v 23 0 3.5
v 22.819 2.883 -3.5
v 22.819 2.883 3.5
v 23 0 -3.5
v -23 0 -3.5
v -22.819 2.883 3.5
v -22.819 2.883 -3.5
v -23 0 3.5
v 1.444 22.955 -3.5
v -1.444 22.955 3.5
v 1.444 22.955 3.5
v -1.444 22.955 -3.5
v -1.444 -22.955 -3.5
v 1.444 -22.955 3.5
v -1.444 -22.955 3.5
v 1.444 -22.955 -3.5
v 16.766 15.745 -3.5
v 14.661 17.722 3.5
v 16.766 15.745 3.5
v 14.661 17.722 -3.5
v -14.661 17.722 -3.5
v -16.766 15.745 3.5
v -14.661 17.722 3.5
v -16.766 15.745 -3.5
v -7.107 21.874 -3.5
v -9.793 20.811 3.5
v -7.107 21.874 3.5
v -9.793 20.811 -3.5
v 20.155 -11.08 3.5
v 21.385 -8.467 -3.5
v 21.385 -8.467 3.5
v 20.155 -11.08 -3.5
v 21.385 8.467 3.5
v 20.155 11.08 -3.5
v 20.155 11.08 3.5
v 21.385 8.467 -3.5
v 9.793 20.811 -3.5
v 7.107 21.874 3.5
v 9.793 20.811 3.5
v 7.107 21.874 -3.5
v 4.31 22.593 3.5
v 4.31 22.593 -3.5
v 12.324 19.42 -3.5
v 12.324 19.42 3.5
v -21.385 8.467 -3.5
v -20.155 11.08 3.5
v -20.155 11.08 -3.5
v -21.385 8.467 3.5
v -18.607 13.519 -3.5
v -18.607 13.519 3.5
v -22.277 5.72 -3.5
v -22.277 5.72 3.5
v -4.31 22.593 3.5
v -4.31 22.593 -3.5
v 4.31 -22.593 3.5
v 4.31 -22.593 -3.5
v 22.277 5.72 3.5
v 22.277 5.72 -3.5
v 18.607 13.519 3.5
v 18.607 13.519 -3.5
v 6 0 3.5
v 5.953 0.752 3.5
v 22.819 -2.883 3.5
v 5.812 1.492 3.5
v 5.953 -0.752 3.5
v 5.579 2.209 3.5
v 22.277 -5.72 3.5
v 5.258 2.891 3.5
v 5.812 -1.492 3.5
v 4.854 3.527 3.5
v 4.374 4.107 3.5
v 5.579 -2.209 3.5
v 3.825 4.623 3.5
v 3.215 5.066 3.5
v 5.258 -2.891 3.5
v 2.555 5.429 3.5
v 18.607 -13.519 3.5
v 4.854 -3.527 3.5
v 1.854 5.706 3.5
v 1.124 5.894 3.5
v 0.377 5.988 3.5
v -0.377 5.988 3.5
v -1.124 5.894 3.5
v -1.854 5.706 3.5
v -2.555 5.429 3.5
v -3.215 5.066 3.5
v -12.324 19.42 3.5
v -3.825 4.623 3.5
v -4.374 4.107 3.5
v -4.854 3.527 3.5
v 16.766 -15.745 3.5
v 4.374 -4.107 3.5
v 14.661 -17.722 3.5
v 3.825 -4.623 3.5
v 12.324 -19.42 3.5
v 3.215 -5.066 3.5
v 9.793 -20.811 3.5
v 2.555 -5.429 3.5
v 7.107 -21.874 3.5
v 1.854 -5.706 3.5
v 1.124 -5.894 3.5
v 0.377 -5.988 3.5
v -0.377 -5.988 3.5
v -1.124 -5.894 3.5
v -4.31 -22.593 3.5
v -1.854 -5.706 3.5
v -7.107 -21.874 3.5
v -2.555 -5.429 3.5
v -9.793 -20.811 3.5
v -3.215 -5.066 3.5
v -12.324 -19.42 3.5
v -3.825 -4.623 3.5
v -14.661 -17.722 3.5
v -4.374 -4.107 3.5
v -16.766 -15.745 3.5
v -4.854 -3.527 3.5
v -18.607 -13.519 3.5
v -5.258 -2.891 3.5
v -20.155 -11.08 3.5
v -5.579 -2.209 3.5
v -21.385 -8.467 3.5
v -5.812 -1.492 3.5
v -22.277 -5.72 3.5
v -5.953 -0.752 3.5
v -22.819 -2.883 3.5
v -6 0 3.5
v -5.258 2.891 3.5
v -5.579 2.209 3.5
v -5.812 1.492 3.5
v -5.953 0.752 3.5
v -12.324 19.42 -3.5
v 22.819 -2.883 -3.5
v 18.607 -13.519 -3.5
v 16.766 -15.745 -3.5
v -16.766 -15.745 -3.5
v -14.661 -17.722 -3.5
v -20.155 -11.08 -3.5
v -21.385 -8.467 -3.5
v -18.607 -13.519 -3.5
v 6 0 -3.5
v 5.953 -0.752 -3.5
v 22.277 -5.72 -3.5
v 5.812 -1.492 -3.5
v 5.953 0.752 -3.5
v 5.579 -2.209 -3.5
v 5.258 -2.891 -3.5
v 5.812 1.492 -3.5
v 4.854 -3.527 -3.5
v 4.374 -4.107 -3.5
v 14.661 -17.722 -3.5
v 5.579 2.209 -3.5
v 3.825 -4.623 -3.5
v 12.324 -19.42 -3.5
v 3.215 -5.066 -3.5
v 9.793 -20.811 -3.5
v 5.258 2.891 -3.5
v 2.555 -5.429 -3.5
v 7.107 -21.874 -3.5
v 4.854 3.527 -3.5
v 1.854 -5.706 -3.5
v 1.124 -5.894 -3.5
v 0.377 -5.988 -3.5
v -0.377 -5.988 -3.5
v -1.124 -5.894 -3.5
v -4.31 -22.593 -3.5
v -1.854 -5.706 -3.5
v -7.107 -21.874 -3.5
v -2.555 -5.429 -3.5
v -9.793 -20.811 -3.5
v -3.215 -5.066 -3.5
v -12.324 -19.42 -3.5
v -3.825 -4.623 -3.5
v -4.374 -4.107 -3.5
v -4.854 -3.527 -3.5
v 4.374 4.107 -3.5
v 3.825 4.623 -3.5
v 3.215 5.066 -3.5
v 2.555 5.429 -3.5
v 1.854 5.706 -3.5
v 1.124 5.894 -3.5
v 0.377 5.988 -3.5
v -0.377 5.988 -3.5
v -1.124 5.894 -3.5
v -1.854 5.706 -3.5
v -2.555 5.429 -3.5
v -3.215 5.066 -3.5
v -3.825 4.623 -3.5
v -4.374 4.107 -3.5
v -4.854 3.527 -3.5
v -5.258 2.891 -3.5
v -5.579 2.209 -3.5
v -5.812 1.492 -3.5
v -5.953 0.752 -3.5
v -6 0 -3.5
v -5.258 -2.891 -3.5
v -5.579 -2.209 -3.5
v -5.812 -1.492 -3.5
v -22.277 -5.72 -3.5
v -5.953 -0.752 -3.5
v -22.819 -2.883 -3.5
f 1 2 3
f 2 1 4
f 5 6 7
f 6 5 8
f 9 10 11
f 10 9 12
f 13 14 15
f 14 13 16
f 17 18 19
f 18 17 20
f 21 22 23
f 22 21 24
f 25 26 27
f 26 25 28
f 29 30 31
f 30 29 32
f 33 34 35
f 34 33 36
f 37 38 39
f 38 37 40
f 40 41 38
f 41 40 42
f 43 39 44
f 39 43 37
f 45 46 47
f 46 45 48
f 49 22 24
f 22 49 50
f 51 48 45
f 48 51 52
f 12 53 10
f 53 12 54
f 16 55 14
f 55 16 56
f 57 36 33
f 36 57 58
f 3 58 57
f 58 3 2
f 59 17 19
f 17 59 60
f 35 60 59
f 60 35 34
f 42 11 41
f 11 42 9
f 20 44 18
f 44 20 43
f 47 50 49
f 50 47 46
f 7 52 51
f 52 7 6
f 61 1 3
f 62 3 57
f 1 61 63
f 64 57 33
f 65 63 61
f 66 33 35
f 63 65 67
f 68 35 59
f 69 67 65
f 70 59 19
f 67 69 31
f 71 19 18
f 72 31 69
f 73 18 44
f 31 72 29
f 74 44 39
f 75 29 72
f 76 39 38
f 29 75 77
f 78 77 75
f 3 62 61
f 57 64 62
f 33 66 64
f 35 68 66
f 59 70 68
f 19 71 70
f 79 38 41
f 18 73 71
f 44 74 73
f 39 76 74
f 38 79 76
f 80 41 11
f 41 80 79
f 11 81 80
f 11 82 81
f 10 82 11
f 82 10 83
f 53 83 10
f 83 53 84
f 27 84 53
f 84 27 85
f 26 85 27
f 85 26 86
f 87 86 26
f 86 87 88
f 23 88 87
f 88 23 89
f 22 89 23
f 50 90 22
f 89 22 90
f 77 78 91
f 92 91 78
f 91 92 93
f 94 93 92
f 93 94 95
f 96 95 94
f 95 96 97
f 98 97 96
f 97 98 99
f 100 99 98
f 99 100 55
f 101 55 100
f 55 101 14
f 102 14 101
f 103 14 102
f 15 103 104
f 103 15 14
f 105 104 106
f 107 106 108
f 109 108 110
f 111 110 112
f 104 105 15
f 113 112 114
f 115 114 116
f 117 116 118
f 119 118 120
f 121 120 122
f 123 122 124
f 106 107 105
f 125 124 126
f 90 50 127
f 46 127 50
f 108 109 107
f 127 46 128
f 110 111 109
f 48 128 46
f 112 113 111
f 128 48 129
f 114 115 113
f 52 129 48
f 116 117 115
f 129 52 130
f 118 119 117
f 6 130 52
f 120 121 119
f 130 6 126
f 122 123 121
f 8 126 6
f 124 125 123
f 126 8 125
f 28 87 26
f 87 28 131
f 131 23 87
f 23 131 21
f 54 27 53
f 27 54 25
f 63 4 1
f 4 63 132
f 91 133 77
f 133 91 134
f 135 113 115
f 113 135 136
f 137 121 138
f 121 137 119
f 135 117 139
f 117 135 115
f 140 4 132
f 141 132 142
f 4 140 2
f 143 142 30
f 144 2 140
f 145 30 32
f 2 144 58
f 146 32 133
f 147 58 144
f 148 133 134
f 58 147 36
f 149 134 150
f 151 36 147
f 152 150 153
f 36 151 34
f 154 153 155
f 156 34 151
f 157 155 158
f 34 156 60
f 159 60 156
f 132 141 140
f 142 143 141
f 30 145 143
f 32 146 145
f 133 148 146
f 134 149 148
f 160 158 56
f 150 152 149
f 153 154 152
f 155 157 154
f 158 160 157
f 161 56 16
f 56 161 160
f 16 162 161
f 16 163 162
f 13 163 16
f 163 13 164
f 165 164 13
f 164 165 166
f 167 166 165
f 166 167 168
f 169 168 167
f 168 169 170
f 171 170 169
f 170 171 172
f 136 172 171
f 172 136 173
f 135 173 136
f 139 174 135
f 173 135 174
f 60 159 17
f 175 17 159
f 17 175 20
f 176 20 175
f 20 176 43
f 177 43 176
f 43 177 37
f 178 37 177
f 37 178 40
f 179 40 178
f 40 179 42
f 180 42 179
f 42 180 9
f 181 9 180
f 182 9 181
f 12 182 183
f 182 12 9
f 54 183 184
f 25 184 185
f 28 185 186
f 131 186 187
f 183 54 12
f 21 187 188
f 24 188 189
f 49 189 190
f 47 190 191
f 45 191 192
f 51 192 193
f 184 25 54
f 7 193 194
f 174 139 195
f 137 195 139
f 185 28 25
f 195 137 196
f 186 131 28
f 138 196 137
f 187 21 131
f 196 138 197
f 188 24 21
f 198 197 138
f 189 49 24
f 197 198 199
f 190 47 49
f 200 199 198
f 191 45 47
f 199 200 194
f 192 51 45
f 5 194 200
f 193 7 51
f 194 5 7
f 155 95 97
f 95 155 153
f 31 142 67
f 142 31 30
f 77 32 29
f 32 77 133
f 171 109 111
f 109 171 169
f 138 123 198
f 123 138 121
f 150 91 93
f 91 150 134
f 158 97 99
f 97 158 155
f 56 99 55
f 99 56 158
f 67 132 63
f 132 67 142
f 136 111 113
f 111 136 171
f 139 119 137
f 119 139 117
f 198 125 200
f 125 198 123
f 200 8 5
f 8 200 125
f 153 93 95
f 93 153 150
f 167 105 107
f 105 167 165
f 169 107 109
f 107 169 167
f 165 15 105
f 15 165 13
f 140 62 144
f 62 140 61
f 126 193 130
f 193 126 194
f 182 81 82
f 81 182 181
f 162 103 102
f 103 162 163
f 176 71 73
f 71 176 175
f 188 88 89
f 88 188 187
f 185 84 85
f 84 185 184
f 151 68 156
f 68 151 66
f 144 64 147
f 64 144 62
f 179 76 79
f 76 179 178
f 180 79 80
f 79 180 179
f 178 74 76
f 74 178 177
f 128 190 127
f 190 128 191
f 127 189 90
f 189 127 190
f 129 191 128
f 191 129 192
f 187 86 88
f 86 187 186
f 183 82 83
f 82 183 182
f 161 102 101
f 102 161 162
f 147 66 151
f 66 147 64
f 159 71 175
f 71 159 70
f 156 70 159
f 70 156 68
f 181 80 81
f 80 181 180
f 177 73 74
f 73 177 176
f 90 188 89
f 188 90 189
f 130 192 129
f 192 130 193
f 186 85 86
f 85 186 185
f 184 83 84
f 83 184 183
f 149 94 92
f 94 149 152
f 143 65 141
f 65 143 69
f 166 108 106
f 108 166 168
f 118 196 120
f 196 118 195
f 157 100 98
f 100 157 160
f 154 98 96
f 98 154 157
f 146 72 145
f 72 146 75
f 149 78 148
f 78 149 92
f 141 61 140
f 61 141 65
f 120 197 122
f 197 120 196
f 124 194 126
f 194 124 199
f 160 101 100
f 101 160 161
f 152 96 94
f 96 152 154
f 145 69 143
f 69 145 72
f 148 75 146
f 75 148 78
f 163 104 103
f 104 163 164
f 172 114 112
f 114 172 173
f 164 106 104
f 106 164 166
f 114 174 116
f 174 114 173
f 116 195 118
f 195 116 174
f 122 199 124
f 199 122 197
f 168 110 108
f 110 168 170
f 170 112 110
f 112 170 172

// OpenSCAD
$fn = 50;


difference() {
	union() {
		translate(v = [0, 0, -3.5000000000]) {
			cylinder(h = 7, r = 23.0000000000);
		}
	}
	union() {
		translate(v = [0, 0, -100.0000000000]) {
			cylinder(h = 200, r = 6);
		}
	}
}
